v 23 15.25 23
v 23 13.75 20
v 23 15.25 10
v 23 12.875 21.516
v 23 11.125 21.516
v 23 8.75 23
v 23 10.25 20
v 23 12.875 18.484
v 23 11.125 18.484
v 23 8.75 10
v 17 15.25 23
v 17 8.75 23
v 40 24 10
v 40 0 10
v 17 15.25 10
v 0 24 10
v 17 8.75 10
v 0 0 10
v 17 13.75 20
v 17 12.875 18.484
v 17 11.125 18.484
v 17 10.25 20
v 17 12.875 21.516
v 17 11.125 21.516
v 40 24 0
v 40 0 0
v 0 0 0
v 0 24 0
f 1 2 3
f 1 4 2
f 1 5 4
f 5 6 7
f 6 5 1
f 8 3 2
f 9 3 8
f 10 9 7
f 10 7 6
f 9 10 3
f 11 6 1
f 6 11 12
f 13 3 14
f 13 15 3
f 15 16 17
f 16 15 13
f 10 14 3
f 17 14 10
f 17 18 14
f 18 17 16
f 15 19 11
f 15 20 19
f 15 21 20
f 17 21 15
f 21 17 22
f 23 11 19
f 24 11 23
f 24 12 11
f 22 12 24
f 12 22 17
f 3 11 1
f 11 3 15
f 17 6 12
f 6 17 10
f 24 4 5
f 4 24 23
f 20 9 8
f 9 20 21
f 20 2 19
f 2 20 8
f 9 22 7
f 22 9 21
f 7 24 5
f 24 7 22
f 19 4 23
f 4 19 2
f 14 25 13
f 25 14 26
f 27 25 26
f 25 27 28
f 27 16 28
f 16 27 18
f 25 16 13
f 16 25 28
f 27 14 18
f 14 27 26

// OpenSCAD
BASE_WIDTH = 40;
BASE_DEPTH = 24;
BASE_HEIGHT = 10;

POST_WIDTH = 6;
POST_DEPTH = 6.5;
POST_HEIGHT = 13;

HOLE_DIAMETER = 3.5;
WALL_WIDTH = 1.5;

module post() {
    offset_x = BASE_WIDTH / 2 - POST_WIDTH / 2;
    offset_y = BASE_DEPTH / 2 - POST_DEPTH / 2;
    offset_z = BASE_HEIGHT;
    translate([offset_x, offset_y, offset_z])
    cube([POST_WIDTH, POST_DEPTH, POST_HEIGHT]);
}

module hole() {
    offset_x = BASE_WIDTH / 2;
    offset_y = BASE_DEPTH / 2;
    offset_z = BASE_HEIGHT + POST_HEIGHT - WALL_WIDTH * 2;
    
    translate([offset_x, offset_y, offset_z])
    rotate([-90, 0, 90])
    cylinder(h = POST_WIDTH + 2, d = HOLE_DIAMETER, center = true);
}

module base() {
    cube([BASE_WIDTH, BASE_DEPTH, BASE_HEIGHT]);
}

union() {
    base();
    
    difference() {
        post();
        hole();
    }
}
